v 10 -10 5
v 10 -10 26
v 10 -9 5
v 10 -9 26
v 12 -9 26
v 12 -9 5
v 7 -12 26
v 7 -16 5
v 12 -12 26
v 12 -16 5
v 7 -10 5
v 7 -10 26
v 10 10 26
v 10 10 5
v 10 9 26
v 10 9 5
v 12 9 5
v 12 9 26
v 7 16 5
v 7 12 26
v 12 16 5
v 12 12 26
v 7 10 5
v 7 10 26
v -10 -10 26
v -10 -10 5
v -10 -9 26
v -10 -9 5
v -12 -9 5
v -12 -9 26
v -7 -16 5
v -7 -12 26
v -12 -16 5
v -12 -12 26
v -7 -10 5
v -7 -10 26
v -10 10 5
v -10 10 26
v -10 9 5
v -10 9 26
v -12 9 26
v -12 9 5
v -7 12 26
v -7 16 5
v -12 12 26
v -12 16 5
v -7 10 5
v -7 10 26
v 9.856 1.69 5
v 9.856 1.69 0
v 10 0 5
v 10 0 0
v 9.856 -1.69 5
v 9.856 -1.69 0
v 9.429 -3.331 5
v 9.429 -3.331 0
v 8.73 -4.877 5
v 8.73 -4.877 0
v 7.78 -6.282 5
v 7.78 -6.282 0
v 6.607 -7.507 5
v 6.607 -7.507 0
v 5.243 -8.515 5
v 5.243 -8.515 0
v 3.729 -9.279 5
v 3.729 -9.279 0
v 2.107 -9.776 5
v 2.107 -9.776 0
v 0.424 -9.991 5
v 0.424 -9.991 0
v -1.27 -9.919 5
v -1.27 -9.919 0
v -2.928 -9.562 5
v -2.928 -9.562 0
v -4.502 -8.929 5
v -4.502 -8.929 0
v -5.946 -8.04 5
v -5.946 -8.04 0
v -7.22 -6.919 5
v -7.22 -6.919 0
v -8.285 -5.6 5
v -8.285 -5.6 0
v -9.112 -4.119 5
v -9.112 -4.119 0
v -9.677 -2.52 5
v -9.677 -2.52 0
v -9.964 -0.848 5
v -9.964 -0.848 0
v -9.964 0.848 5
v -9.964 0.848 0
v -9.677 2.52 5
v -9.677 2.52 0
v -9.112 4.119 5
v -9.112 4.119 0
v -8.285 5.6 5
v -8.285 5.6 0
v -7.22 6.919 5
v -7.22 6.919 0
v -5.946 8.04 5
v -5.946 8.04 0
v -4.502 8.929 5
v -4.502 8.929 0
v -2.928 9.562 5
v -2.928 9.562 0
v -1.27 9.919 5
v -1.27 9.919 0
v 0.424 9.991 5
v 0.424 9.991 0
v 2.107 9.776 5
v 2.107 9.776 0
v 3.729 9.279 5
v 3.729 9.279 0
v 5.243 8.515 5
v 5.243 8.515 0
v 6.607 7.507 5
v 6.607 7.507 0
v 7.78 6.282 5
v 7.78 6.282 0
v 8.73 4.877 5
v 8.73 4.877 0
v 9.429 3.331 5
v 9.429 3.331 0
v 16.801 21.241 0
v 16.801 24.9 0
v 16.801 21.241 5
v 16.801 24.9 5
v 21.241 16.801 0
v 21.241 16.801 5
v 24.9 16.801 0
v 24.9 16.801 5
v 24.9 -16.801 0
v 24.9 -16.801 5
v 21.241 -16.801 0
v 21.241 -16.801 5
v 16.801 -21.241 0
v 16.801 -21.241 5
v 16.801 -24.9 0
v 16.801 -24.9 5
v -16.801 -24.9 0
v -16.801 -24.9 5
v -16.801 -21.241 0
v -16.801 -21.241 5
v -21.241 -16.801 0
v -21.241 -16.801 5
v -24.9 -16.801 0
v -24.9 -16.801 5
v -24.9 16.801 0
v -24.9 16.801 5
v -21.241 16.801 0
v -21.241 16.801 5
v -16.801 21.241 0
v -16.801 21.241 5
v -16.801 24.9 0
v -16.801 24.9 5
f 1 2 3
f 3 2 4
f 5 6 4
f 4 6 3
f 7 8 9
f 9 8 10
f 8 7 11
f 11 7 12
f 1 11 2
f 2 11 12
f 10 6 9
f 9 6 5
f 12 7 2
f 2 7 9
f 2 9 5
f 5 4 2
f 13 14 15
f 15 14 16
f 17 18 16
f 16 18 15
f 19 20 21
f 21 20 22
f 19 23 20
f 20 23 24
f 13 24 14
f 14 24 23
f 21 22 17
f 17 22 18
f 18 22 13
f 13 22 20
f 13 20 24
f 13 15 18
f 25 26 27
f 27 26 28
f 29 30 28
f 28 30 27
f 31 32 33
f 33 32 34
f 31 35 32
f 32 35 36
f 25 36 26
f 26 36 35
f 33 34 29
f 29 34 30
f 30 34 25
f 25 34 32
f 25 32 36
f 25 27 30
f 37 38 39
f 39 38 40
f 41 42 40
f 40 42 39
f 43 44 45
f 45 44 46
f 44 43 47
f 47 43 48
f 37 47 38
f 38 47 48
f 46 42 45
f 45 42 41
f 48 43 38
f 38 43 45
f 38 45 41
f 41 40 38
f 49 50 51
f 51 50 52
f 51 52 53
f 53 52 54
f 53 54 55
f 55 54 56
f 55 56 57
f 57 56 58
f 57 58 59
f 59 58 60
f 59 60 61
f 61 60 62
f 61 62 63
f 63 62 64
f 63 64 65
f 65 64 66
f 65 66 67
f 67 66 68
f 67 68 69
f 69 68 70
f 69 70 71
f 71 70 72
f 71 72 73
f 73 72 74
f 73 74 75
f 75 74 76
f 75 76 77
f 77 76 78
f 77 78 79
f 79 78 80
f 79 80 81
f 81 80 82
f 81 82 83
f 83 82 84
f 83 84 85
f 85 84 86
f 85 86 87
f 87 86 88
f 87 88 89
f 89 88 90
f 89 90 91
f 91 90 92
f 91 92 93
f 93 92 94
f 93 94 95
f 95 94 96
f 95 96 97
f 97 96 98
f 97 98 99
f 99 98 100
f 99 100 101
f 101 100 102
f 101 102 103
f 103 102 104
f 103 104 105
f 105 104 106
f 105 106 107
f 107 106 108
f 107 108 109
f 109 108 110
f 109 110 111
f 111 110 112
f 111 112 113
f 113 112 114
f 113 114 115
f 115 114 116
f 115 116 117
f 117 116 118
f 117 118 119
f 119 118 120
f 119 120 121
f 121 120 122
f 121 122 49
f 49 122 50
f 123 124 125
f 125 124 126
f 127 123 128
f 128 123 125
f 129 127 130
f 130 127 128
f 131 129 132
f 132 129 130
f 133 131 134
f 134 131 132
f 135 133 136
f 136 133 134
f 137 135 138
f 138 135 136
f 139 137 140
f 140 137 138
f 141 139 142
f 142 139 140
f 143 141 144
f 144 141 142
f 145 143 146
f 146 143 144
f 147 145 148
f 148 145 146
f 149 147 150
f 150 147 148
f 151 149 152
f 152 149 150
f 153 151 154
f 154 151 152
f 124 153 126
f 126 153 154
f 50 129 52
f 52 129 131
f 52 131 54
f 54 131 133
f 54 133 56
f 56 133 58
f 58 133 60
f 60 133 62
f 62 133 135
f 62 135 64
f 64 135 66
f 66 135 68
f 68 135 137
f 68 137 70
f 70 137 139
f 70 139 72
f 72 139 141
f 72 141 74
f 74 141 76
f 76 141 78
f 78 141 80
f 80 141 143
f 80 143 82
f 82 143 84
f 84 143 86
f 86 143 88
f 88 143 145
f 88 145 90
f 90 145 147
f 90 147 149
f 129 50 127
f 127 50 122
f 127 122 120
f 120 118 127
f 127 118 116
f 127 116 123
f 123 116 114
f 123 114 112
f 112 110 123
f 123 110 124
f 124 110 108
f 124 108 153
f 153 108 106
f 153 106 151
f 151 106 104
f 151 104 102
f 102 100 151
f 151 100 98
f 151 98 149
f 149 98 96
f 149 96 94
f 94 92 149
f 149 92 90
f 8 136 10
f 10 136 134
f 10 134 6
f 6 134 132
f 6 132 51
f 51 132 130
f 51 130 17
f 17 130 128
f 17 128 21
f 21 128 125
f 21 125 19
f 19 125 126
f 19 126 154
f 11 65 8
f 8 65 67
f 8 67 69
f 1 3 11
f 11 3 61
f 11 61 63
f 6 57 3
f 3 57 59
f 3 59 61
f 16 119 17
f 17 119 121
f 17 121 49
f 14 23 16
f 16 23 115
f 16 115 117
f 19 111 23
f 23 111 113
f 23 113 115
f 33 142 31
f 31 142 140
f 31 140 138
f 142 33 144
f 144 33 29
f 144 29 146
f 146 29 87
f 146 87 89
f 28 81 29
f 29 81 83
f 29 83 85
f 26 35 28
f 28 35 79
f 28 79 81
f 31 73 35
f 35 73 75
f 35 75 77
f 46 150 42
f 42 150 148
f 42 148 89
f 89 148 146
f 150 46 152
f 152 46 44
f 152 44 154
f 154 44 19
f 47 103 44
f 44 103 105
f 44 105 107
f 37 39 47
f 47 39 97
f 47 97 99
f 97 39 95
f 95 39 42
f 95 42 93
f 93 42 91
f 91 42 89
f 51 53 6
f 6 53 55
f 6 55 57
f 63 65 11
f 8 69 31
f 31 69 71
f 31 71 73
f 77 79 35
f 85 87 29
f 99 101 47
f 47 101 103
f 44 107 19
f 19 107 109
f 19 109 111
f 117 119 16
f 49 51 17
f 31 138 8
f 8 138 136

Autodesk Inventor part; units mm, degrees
ref_plane "YZ Plane" through (0, 0, 0) normal (1, 0, 0) x (0, 1, 0)
ref_plane "XZ Plane" through (0, 0, 0) normal (0, 1, 0) x (-1, 0, 0)
ref_plane "XY Plane" through (0, 0, 0) normal (0, 0, 1) x (1, 0, 0)
sketch "Sketch1" plane through (0, 0, 0) normal (0, 0, 1) x (1, 0, 0)
  line L0 (-34.86, 0) -> (34.86, 0) construction
  line L1 (0, -34.86) -> (0, 34.86) construction
  line L2 (0, 0) -> (16.9726, 16.9726) construction
  line L3 (0, 0) -> (24.0028, 0) construction
  line L4 (0, 24.9) -> (16.8009, 24.9)
  line L5 (16.8009, 24.9) -> (16.8009, 21.2415)
  line L6 (16.8009, 21.2415) -> (19.0212, 19.0212)
  line L7 (24.9, 0) -> (24.9, 16.8009)
  line L8 (24.9, 16.8009) -> (21.2415, 16.8009)
  line L9 (21.2415, 16.8009) -> (19.0212, 19.0212)
  line L10 (0, -24.9) -> (16.8009, -24.9)
  line L11 (16.8009, -24.9) -> (16.8009, -21.2415)
  line L12 (16.8009, -21.2415) -> (19.0212, -19.0212)
  line L13 (24.9, 0) -> (24.9, -16.8009)
  line L14 (24.9, -16.8009) -> (21.2415, -16.8009)
  line L15 (21.2415, -16.8009) -> (19.0212, -19.0212)
  line L16 (0, 0) -> (-16.9726, 16.9726) construction
  line L17 (0, 0) -> (-24.0028, 0) construction
  line L18 (0, 24.9) -> (-16.8009, 24.9)
  line L19 (-16.8009, 24.9) -> (-16.8009, 21.2415)
  line L20 (-16.8009, 21.2415) -> (-19.0212, 19.0212)
  line L21 (-24.9, 0) -> (-24.9, 16.8009)
  line L22 (-24.9, 16.8009) -> (-21.2415, 16.8009)
  line L23 (-21.2415, 16.8009) -> (-19.0212, 19.0212)
  line L24 (0, -24.9) -> (-16.8009, -24.9)
  line L25 (-16.8009, -24.9) -> (-16.8009, -21.2415)
  line L26 (-16.8009, -21.2415) -> (-19.0212, -19.0212)
  line L27 (-21.2415, -16.8009) -> (-19.0212, -19.0212)
  line L28 (-24.9, -16.8009) -> (-21.2415, -16.8009)
  line L29 (-24.9, 0) -> (-24.9, -16.8009)
  circle A0 centre (0, 0) radius 10
  dimension "d17" = 45
  dimension "d18" = 24.9
  dimension "d20" = 3.14
  dimension "d21" = 26.9
  dimension "d22" = 20
extrude "Extrusion1" add sketch "Sketch1" along normal blind 5
sketch "Sketch2" plane through (0, 0, 5) normal (0, 0, 1) x (1, 0, 0)
  circle A0 centre (0, 0) radius 10 projected
  line L0 (16.8009, 24.9) -> (-16.8009, 24.9) projected
  line L1 (-16.8009, 24.9) -> (-16.8009, 21.2415) projected
  line L2 (-16.8009, 21.2415) -> (-21.2415, 16.8009) projected
  line L3 (-21.2415, 16.8009) -> (-24.9, 16.8009) projected
  line L4 (-24.9, 16.8009) -> (-24.9, -16.8009) projected
  line L5 (-24.9, -16.8009) -> (-21.2415, -16.8009) projected
  line L6 (-21.2415, -16.8009) -> (-16.8009, -21.2415) projected
  line L7 (-16.8009, -21.2415) -> (-16.8009, -24.9) projected
  line L8 (-16.8009, -24.9) -> (16.8009, -24.9) projected
  line L9 (16.8009, -24.9) -> (16.8009, -21.2415) projected
  line L10 (16.8009, -21.2415) -> (21.2415, -16.8009) projected
  line L11 (21.2415, -16.8009) -> (24.9, -16.8009) projected
  line L12 (24.9, -16.8009) -> (24.9, 16.8009) projected
  line L13 (24.9, 16.8009) -> (21.2415, 16.8009) projected
  line L14 (21.2415, 16.8009) -> (16.8009, 21.2415) projected
  line L15 (16.8009, 21.2415) -> (16.8009, 24.9) projected
  line L16 (0, -34.86) -> (0, 34.86) construction
  line L17 (-12, 12) -> (-7, 12)
  line L18 (-7, 12) -> (-7, 10)
  line L19 (-7, 10) -> (-12, 10)
  line L20 (-12, 10) -> (-12, 12)
  dimension "d27" = 2
  dimension "d28" = 5
  dimension "d29" = 12
extrude "Extrusion2" add sketch "Sketch2" along normal blind 21 contours L17 L18 L19 L20
sketch "Sketch4" plane through (-12, 10, 5) normal (-1, 0, 0) x (0, 0, 1)
  line L0 (0, 0) -> (0, 2) projected
  line L1 (0, 0) -> (21, 0) projected
  line L2 (21, 2) -> (21, 0) projected
  line L3 (0, 2) -> (21, 2) projected
  line L4 (0, 6.8009) -> (0, -26.8009) projected
  line L5 (0, 2) -> (21, 2) projected
  line L6 (21, 2) -> (0, 2)
  line L7 (0, 2) -> (0, 6)
  line L8 (0, -26.8009) -> (0, 6.8009) projected
  line L9 (0, 6) -> (21, 2)
  point P0 (-5, -10)
  dimension "d35" = 4
extrude "Extrusion4" add sketch "Sketch4" against normal up to surface (5 mm away) contours L4 L9 L3
sketch "Sketch5" plane through (-12, 10, 5) normal (0, -1, 0) x (1, 0, 0)
  line L0 (5, 21) -> (5, 0) projected
  line L1 (0, 0) -> (5, 0) projected
  line L2 (0, 21) -> (0, 0) projected
  line L3 (5, 21) -> (0, 21) projected
  line L4 (12, -10.2) -> (12, 26.2) construction
  line L5 (0, 21) -> (2, 21)
  line L6 (2, 21) -> (2, 0)
  line L7 (2, 0) -> (0, 0)
  line L8 (0, 0) -> (0, 21)
  point P0 (12, -5)
  dimension "d38" = 10
extrude "Extrusion5" add sketch "Sketch5" along normal blind 1 contours L6 L1 L2 L3
mirror "Mirror1" about plane through (0, 0, 0) normal (0, 1, 0) of "Extrusion2", "Extrusion4", "Extrusion5"
mirror "Mirror2" about plane through (0, 0, 0) normal (1, 0, 0) of "Extrusion2", "Extrusion4", "Mirror1", "Extrusion5"
properties part number "20_Cube_Insert_Beamsplitter"
